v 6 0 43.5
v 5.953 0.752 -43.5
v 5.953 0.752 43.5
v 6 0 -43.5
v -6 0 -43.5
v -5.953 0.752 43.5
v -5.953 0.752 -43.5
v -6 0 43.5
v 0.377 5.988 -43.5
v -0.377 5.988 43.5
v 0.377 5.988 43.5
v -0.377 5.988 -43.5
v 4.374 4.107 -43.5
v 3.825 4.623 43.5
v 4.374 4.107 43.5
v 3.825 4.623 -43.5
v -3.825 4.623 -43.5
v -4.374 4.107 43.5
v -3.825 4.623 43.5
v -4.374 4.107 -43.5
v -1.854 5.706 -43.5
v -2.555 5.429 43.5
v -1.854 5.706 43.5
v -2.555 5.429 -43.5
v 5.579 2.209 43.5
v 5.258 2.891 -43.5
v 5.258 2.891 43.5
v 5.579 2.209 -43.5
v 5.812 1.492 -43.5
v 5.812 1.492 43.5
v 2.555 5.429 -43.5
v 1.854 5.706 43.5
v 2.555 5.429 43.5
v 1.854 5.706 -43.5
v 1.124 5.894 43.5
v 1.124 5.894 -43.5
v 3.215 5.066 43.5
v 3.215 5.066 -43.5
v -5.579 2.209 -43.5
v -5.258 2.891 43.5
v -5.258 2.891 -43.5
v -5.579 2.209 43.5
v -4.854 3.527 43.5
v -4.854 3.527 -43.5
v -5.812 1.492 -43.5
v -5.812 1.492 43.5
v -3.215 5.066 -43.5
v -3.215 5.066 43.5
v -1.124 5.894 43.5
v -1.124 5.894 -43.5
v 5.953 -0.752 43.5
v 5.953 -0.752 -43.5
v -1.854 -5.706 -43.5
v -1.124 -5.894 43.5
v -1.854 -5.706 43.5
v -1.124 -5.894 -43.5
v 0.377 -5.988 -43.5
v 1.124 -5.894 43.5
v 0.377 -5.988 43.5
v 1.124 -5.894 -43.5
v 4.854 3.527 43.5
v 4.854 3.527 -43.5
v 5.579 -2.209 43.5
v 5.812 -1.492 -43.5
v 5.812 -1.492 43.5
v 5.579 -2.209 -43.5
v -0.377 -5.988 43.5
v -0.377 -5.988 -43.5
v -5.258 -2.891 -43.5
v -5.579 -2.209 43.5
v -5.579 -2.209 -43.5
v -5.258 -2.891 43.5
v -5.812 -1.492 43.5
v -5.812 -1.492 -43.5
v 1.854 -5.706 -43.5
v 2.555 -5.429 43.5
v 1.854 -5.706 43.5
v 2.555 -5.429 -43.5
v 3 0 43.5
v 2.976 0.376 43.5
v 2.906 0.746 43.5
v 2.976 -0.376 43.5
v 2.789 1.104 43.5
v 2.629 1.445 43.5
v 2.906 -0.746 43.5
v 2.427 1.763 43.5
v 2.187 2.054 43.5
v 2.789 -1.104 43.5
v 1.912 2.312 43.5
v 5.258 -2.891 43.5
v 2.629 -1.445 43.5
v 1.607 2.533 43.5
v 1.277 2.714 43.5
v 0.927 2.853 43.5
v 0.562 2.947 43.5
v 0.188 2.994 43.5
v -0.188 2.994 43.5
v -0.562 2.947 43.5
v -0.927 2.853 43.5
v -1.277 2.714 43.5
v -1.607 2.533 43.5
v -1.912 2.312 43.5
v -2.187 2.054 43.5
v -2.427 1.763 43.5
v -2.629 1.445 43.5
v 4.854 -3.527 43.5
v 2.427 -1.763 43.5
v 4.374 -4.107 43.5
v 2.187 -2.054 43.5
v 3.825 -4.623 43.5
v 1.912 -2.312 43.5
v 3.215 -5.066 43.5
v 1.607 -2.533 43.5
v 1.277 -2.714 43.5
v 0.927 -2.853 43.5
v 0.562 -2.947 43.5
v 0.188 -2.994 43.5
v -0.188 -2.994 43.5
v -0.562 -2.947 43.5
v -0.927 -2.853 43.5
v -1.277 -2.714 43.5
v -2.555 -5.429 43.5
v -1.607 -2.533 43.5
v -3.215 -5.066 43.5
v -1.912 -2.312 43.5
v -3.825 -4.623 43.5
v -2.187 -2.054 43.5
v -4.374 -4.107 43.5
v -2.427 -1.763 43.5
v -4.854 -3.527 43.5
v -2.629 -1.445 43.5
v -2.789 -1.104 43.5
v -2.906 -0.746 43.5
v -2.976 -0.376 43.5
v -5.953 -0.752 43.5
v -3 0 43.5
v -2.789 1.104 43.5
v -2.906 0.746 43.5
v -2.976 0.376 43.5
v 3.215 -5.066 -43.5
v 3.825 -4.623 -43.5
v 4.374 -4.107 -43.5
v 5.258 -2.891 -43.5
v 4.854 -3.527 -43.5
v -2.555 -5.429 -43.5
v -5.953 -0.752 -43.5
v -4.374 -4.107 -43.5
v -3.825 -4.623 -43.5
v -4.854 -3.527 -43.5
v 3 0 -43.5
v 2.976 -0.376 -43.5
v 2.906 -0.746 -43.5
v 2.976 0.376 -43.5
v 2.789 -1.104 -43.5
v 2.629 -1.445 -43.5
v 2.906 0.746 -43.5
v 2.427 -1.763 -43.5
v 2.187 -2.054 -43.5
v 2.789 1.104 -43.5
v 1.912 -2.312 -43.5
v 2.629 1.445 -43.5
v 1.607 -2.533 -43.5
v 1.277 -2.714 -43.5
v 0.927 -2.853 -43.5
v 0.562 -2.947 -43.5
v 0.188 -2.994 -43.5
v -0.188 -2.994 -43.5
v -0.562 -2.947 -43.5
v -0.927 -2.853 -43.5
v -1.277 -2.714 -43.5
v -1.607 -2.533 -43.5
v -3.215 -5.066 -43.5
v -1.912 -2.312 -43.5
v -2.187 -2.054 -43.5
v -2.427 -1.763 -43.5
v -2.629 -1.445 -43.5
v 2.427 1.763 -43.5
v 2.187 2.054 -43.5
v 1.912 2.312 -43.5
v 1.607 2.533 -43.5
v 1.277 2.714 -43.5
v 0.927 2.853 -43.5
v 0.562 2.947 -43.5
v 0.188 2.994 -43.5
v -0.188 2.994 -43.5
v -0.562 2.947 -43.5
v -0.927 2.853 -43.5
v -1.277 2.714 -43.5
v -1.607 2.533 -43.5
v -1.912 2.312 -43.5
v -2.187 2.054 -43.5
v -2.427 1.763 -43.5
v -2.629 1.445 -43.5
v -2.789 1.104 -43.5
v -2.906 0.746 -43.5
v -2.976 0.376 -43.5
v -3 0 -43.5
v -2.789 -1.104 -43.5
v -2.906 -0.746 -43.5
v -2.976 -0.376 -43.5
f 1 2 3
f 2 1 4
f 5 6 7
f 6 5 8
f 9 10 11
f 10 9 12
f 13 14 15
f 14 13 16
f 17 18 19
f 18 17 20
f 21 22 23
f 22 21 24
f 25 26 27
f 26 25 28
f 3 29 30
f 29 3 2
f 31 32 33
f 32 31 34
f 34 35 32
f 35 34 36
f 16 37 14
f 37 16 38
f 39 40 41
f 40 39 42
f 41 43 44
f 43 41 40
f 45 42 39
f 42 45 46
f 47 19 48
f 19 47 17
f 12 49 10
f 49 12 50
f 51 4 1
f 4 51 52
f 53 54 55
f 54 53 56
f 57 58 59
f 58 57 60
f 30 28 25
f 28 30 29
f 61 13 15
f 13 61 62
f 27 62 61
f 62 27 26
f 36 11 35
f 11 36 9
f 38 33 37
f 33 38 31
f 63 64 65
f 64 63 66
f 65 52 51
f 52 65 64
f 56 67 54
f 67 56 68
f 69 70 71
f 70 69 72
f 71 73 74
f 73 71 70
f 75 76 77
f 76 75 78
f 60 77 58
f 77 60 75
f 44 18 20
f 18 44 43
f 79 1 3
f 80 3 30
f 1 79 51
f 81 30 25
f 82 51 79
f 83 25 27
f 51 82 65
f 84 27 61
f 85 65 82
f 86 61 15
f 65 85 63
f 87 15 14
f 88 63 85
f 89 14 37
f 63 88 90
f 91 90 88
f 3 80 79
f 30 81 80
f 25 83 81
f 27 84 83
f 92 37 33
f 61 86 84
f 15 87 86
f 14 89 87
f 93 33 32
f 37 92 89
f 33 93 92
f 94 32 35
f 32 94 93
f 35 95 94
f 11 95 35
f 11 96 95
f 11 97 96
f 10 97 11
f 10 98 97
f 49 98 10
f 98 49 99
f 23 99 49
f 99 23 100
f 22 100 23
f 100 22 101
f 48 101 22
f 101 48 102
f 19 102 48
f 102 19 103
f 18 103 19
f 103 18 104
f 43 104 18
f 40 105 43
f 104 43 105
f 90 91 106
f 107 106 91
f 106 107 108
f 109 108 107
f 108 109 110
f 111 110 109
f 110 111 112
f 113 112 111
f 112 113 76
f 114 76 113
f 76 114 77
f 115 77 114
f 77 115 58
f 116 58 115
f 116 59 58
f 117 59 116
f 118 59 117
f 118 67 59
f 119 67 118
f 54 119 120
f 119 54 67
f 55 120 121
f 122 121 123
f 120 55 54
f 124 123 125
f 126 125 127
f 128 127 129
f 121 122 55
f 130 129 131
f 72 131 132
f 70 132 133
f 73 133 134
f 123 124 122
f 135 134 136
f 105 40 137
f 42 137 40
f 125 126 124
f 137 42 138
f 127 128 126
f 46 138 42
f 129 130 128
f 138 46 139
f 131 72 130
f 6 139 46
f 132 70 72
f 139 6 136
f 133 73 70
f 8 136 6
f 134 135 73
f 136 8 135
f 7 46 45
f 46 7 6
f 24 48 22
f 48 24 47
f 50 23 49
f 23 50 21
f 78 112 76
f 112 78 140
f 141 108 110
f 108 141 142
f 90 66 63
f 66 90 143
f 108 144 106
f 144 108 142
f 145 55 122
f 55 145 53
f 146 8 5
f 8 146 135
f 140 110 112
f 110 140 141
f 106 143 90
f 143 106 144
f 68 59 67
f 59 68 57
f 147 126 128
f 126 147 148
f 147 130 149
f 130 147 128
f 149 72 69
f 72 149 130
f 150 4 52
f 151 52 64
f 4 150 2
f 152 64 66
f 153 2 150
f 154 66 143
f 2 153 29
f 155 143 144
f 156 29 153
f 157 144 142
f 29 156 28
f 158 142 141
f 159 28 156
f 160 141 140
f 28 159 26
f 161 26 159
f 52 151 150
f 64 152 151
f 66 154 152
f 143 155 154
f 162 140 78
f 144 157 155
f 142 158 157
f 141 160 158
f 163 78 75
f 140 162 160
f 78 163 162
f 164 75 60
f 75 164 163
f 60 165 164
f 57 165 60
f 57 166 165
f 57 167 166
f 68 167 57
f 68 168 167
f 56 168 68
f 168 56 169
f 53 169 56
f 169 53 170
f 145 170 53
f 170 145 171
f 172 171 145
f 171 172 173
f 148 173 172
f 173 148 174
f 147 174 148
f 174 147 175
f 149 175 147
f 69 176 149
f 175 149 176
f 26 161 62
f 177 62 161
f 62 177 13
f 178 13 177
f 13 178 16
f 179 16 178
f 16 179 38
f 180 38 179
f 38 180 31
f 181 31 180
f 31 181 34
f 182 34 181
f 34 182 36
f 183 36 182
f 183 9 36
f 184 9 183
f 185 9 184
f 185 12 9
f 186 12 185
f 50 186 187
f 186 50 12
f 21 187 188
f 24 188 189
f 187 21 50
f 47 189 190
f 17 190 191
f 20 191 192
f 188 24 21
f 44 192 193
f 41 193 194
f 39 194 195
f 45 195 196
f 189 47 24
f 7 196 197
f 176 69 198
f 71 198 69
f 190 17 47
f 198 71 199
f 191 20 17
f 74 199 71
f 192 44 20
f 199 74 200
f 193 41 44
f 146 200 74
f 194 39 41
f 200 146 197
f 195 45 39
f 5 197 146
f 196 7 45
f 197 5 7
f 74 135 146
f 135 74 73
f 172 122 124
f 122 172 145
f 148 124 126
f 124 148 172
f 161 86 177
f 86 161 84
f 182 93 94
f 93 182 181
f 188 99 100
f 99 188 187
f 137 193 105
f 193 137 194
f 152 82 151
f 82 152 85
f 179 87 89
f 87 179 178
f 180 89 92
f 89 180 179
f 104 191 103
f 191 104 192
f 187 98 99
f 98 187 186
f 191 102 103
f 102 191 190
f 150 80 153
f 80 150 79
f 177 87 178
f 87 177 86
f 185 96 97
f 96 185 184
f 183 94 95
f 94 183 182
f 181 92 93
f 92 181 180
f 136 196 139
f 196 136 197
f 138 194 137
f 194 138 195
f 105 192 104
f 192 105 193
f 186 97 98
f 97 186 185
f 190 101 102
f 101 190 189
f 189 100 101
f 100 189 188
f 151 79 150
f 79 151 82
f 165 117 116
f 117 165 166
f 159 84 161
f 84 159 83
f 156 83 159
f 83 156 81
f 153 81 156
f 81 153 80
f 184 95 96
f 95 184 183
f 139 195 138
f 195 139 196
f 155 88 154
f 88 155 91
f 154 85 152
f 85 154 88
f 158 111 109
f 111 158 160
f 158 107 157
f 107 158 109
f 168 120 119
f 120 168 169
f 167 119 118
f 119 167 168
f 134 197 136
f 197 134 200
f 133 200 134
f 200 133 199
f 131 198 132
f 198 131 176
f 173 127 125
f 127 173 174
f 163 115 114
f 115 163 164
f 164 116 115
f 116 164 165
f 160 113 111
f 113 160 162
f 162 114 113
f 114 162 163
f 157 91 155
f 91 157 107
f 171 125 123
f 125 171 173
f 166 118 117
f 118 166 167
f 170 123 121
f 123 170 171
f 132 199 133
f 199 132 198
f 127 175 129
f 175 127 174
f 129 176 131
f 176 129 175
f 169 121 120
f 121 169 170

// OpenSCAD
$fn = 50;


difference() {
	union() {
		translate(v = [0, 0, -43.5000000000]) {
			cylinder(h = 87, r = 6.0000000000);
		}
	}
	union() {
		translate(v = [0, 0, -100.0000000000]) {
			cylinder(h = 200, r = 3.0000000000);
		}
	}
}
